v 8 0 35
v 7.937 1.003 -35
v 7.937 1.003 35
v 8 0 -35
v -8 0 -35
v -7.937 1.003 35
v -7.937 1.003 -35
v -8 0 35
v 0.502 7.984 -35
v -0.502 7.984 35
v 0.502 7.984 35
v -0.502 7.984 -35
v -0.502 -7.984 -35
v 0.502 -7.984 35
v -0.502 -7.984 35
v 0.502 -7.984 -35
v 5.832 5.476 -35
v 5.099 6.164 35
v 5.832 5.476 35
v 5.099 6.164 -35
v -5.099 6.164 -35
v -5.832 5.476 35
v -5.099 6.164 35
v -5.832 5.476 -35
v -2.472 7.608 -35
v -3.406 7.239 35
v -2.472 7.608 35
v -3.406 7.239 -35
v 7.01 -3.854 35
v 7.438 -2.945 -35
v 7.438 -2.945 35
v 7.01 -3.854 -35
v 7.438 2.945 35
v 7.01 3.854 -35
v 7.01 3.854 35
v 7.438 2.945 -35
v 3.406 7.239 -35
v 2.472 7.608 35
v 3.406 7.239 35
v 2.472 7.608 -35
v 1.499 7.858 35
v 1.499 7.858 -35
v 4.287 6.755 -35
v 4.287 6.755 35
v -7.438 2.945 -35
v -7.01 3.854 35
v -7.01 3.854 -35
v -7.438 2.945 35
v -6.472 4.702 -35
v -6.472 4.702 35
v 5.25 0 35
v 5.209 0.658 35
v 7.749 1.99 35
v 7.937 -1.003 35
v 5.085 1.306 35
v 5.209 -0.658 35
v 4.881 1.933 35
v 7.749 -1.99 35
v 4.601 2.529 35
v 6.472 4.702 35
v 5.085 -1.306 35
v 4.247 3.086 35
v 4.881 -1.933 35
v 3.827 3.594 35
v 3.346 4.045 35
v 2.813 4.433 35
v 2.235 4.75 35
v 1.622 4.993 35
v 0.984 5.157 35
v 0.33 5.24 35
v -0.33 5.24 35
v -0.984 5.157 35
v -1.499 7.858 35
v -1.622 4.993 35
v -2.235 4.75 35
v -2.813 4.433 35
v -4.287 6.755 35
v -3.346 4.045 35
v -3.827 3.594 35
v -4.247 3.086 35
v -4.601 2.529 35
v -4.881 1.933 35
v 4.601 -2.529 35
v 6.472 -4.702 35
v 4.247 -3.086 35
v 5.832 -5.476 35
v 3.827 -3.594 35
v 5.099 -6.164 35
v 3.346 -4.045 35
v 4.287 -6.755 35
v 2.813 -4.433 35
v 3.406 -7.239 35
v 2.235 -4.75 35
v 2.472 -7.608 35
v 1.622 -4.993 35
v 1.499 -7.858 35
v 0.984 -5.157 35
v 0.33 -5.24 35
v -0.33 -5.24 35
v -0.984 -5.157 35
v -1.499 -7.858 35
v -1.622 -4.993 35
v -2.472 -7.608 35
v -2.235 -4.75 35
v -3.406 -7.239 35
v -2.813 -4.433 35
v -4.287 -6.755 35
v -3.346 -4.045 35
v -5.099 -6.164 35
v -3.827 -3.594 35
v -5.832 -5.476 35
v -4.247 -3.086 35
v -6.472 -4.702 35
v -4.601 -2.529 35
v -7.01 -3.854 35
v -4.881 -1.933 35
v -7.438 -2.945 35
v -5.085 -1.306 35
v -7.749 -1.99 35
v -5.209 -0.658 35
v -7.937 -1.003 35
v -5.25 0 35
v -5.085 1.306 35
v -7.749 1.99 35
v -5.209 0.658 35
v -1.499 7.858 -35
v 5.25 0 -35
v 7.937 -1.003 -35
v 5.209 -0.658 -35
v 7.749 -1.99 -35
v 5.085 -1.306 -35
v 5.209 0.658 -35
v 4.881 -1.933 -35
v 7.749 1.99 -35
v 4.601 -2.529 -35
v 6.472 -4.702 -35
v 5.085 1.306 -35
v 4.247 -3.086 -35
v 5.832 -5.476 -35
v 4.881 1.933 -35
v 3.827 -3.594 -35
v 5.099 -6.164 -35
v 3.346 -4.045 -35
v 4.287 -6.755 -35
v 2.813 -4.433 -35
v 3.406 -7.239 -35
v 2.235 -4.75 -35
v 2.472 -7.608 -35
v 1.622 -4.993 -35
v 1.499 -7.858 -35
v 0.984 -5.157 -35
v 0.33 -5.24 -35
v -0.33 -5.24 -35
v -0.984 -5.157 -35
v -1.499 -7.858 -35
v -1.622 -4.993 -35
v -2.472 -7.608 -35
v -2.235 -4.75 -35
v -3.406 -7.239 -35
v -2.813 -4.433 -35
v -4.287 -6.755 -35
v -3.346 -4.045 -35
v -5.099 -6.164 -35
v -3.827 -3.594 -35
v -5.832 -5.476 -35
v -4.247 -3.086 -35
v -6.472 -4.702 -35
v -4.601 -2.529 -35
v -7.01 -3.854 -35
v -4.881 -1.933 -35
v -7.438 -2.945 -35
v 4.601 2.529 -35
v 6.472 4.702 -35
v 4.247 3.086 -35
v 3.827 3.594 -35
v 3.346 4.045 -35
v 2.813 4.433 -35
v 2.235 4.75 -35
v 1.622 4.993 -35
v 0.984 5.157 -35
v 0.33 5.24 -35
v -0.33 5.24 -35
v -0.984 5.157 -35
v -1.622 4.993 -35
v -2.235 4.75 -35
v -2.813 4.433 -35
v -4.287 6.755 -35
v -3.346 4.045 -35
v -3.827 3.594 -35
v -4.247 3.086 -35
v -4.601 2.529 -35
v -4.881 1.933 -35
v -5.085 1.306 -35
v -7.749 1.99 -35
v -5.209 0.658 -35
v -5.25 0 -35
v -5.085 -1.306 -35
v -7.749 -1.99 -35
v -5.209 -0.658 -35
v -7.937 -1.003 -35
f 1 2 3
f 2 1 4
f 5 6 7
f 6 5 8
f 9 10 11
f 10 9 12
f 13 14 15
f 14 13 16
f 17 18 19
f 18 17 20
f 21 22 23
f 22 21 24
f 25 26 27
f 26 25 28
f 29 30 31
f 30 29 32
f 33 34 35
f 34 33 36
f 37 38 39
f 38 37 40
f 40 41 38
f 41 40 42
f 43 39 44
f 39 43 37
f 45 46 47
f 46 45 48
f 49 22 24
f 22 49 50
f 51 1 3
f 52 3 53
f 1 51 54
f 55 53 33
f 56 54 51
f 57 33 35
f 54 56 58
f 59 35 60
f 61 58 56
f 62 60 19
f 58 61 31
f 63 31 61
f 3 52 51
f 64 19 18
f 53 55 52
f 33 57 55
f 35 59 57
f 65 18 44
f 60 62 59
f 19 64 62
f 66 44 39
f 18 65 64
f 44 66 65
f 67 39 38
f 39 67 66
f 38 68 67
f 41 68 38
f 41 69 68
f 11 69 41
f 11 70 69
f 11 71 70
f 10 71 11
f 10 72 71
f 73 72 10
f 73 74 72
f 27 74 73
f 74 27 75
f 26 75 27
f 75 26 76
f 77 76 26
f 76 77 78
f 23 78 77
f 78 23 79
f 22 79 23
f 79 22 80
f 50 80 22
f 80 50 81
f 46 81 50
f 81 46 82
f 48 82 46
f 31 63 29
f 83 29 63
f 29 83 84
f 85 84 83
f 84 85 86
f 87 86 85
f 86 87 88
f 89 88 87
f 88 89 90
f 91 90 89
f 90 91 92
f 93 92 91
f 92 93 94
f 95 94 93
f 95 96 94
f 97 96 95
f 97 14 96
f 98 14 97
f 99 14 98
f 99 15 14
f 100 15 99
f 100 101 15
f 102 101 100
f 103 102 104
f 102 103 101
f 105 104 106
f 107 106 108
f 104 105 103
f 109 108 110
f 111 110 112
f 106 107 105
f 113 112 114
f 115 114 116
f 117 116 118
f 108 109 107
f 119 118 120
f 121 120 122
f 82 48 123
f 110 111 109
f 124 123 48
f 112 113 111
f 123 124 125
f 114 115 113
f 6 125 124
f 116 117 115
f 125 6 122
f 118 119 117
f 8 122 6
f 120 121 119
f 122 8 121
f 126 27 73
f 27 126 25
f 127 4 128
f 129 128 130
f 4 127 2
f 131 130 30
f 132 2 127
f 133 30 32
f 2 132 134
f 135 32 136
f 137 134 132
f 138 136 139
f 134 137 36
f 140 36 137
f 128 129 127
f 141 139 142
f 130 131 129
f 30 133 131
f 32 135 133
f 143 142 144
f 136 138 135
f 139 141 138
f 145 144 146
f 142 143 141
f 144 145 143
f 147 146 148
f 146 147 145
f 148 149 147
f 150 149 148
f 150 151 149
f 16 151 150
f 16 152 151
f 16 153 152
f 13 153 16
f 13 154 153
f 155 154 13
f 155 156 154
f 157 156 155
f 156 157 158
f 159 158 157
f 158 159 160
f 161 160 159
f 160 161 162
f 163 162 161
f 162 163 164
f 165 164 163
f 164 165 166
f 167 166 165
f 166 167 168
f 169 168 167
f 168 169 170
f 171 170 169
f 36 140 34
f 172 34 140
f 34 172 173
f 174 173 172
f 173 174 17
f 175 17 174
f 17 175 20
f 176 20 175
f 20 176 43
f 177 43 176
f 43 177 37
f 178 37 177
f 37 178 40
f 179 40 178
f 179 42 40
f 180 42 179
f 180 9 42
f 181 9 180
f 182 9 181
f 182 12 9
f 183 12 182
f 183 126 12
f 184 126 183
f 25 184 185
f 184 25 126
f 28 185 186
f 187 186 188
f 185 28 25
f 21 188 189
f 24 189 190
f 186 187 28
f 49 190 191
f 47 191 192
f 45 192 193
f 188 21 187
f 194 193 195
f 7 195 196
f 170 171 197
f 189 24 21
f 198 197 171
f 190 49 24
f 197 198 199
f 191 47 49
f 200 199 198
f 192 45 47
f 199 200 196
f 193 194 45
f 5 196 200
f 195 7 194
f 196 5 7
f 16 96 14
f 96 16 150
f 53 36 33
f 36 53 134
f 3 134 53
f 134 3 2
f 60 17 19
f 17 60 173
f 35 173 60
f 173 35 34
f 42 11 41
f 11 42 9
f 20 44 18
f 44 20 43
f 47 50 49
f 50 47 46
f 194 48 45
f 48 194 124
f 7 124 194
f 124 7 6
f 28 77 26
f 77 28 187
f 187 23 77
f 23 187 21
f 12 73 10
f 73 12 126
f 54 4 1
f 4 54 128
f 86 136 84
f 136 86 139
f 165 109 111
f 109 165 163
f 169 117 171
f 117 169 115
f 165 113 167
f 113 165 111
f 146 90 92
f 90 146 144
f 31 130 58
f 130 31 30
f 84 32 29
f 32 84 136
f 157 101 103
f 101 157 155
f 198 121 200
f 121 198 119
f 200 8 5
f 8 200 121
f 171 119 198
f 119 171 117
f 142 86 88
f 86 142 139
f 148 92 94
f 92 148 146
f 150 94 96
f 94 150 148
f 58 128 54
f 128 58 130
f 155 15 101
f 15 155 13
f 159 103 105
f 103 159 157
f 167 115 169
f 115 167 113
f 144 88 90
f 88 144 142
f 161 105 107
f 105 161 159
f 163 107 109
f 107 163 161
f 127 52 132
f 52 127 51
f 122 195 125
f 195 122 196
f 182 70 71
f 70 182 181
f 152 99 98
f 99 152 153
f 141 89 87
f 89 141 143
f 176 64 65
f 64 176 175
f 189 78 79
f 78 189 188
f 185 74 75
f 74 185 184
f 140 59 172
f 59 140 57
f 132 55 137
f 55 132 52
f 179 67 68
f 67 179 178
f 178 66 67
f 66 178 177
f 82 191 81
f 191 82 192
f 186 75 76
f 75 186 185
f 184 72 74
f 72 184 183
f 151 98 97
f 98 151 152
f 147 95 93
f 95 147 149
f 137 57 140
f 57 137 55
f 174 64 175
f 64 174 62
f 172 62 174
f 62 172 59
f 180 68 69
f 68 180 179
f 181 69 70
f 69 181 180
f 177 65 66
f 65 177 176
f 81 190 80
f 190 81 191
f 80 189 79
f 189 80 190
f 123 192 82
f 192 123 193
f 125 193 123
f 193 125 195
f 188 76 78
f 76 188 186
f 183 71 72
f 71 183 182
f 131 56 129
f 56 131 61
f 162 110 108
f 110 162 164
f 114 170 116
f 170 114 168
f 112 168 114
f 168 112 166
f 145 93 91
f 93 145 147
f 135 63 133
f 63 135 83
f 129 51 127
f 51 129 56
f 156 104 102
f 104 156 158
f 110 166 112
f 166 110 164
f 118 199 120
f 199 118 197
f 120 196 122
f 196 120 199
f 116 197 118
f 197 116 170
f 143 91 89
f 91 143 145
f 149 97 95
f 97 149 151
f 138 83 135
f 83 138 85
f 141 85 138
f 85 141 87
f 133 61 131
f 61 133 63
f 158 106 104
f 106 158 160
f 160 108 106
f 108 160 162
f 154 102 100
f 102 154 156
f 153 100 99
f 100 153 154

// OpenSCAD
$fn = 50;


difference() {
	union() {
		translate(v = [0, 0, -35.0000000000]) {
			cylinder(h = 70, r = 8.0000000000);
		}
	}
	union() {
		translate(v = [0, 0, -100.0000000000]) {
			cylinder(h = 200, r = 5.2500000000);
		}
	}
}
